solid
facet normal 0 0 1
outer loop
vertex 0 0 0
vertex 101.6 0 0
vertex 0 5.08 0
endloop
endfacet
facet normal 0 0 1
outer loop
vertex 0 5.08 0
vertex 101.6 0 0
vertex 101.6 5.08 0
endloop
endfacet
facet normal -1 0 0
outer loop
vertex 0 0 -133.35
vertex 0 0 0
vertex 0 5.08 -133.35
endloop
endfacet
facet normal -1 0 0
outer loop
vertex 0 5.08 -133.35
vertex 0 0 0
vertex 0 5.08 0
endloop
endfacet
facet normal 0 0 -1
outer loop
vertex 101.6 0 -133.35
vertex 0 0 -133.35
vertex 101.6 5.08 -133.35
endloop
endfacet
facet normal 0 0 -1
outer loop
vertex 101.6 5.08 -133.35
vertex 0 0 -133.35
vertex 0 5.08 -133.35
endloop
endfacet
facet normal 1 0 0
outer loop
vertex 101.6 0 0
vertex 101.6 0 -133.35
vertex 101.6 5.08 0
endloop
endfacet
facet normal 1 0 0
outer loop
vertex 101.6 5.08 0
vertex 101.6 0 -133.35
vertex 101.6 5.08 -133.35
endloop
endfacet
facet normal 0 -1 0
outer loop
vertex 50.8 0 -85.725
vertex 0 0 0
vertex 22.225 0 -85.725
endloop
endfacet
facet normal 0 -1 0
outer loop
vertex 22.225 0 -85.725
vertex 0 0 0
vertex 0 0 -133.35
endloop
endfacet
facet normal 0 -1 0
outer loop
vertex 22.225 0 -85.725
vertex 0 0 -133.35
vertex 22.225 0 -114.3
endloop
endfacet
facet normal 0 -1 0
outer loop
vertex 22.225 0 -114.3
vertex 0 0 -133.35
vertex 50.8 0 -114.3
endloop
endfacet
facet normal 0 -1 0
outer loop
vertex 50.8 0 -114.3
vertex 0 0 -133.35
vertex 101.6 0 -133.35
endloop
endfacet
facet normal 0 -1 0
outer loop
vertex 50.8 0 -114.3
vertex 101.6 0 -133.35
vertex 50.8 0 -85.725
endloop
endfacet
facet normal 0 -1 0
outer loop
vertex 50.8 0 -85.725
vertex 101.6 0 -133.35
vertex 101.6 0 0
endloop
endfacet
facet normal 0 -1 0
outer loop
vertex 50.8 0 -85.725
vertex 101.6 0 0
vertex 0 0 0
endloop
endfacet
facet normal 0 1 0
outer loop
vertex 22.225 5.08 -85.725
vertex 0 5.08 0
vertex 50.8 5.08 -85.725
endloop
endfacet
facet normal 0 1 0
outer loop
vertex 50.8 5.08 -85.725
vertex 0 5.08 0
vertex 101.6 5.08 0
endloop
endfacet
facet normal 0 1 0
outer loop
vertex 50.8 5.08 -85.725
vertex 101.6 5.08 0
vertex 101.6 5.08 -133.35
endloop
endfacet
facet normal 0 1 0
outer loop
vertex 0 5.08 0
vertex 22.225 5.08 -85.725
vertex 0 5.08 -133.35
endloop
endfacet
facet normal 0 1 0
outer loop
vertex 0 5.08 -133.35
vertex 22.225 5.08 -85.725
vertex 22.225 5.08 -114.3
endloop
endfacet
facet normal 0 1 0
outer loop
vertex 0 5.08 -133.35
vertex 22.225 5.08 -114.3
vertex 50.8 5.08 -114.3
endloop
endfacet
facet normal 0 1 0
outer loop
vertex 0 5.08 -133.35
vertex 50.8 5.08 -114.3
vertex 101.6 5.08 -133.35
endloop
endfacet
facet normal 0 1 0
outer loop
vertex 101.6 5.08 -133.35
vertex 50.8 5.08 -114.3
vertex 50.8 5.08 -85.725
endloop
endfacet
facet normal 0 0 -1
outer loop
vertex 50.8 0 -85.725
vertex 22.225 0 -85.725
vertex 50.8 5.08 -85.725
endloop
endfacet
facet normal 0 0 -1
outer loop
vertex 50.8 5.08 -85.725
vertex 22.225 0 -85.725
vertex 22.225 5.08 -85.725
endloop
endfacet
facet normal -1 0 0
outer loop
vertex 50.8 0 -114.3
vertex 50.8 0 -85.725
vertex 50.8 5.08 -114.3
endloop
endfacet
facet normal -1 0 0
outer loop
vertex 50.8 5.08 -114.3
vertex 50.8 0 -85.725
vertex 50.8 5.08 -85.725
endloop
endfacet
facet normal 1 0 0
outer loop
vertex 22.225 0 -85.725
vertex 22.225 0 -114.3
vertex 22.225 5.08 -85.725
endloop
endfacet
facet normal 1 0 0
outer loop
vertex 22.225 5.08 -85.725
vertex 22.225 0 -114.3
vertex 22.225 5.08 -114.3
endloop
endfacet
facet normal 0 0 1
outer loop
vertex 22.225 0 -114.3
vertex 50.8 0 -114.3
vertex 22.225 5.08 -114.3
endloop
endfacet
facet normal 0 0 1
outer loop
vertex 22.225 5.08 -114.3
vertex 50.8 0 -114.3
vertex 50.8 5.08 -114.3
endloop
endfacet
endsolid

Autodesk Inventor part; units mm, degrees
ref_plane "YZ Plane" through (0, 0, 0) normal (1, 0, 0) x (0, 1, 0)
ref_plane "XZ Plane" through (0, 0, 0) normal (0, 1, 0) x (-1, 0, 0)
ref_plane "XY Plane" through (0, 0, 0) normal (0, 0, 1) x (1, 0, 0)
sketch "Sketch1" plane through (0, 0, 0) normal (0, 1, 0) x (-1, 0, 0)
  line L0 (0, 0) -> (-101.6, 0)
  line L1 (-101.6, 0) -> (-101.6, -133.35)
  line L2 (-101.6, -133.35) -> (0, -133.35)
  line L3 (0, -133.35) -> (0, 0)
  dimension "d0" = 101.6
  dimension "d1" = 133.35
extrude "Extrusion1" add sketch "Sketch1" along normal blind 5.08
sketch "Sketch2" plane through (0, 5.08, 0) normal (0, 1, 0) x (1, 0, 0)
  line L0 (101.6, 133.35) -> (0, 133.35) projected
  line L1 (50.8, 133.35) -> (50.8, 114.3)
  line L2 (50.8, 114.3) -> (22.225, 114.3)
  line L3 (22.225, 114.3) -> (22.225, 85.725)
  line L4 (22.225, 85.725) -> (50.8, 85.725)
  line L5 (50.8, 85.725) -> (50.8, 114.3)
  point P0 (0, 0)
  dimension "d4" = 19.05
  dimension "d5" = 28.575
  dimension "d6" = 28.575
extrude "Extrusion2" cut sketch "Sketch2" against normal blind 25.4
properties part number "HalfofTop"
